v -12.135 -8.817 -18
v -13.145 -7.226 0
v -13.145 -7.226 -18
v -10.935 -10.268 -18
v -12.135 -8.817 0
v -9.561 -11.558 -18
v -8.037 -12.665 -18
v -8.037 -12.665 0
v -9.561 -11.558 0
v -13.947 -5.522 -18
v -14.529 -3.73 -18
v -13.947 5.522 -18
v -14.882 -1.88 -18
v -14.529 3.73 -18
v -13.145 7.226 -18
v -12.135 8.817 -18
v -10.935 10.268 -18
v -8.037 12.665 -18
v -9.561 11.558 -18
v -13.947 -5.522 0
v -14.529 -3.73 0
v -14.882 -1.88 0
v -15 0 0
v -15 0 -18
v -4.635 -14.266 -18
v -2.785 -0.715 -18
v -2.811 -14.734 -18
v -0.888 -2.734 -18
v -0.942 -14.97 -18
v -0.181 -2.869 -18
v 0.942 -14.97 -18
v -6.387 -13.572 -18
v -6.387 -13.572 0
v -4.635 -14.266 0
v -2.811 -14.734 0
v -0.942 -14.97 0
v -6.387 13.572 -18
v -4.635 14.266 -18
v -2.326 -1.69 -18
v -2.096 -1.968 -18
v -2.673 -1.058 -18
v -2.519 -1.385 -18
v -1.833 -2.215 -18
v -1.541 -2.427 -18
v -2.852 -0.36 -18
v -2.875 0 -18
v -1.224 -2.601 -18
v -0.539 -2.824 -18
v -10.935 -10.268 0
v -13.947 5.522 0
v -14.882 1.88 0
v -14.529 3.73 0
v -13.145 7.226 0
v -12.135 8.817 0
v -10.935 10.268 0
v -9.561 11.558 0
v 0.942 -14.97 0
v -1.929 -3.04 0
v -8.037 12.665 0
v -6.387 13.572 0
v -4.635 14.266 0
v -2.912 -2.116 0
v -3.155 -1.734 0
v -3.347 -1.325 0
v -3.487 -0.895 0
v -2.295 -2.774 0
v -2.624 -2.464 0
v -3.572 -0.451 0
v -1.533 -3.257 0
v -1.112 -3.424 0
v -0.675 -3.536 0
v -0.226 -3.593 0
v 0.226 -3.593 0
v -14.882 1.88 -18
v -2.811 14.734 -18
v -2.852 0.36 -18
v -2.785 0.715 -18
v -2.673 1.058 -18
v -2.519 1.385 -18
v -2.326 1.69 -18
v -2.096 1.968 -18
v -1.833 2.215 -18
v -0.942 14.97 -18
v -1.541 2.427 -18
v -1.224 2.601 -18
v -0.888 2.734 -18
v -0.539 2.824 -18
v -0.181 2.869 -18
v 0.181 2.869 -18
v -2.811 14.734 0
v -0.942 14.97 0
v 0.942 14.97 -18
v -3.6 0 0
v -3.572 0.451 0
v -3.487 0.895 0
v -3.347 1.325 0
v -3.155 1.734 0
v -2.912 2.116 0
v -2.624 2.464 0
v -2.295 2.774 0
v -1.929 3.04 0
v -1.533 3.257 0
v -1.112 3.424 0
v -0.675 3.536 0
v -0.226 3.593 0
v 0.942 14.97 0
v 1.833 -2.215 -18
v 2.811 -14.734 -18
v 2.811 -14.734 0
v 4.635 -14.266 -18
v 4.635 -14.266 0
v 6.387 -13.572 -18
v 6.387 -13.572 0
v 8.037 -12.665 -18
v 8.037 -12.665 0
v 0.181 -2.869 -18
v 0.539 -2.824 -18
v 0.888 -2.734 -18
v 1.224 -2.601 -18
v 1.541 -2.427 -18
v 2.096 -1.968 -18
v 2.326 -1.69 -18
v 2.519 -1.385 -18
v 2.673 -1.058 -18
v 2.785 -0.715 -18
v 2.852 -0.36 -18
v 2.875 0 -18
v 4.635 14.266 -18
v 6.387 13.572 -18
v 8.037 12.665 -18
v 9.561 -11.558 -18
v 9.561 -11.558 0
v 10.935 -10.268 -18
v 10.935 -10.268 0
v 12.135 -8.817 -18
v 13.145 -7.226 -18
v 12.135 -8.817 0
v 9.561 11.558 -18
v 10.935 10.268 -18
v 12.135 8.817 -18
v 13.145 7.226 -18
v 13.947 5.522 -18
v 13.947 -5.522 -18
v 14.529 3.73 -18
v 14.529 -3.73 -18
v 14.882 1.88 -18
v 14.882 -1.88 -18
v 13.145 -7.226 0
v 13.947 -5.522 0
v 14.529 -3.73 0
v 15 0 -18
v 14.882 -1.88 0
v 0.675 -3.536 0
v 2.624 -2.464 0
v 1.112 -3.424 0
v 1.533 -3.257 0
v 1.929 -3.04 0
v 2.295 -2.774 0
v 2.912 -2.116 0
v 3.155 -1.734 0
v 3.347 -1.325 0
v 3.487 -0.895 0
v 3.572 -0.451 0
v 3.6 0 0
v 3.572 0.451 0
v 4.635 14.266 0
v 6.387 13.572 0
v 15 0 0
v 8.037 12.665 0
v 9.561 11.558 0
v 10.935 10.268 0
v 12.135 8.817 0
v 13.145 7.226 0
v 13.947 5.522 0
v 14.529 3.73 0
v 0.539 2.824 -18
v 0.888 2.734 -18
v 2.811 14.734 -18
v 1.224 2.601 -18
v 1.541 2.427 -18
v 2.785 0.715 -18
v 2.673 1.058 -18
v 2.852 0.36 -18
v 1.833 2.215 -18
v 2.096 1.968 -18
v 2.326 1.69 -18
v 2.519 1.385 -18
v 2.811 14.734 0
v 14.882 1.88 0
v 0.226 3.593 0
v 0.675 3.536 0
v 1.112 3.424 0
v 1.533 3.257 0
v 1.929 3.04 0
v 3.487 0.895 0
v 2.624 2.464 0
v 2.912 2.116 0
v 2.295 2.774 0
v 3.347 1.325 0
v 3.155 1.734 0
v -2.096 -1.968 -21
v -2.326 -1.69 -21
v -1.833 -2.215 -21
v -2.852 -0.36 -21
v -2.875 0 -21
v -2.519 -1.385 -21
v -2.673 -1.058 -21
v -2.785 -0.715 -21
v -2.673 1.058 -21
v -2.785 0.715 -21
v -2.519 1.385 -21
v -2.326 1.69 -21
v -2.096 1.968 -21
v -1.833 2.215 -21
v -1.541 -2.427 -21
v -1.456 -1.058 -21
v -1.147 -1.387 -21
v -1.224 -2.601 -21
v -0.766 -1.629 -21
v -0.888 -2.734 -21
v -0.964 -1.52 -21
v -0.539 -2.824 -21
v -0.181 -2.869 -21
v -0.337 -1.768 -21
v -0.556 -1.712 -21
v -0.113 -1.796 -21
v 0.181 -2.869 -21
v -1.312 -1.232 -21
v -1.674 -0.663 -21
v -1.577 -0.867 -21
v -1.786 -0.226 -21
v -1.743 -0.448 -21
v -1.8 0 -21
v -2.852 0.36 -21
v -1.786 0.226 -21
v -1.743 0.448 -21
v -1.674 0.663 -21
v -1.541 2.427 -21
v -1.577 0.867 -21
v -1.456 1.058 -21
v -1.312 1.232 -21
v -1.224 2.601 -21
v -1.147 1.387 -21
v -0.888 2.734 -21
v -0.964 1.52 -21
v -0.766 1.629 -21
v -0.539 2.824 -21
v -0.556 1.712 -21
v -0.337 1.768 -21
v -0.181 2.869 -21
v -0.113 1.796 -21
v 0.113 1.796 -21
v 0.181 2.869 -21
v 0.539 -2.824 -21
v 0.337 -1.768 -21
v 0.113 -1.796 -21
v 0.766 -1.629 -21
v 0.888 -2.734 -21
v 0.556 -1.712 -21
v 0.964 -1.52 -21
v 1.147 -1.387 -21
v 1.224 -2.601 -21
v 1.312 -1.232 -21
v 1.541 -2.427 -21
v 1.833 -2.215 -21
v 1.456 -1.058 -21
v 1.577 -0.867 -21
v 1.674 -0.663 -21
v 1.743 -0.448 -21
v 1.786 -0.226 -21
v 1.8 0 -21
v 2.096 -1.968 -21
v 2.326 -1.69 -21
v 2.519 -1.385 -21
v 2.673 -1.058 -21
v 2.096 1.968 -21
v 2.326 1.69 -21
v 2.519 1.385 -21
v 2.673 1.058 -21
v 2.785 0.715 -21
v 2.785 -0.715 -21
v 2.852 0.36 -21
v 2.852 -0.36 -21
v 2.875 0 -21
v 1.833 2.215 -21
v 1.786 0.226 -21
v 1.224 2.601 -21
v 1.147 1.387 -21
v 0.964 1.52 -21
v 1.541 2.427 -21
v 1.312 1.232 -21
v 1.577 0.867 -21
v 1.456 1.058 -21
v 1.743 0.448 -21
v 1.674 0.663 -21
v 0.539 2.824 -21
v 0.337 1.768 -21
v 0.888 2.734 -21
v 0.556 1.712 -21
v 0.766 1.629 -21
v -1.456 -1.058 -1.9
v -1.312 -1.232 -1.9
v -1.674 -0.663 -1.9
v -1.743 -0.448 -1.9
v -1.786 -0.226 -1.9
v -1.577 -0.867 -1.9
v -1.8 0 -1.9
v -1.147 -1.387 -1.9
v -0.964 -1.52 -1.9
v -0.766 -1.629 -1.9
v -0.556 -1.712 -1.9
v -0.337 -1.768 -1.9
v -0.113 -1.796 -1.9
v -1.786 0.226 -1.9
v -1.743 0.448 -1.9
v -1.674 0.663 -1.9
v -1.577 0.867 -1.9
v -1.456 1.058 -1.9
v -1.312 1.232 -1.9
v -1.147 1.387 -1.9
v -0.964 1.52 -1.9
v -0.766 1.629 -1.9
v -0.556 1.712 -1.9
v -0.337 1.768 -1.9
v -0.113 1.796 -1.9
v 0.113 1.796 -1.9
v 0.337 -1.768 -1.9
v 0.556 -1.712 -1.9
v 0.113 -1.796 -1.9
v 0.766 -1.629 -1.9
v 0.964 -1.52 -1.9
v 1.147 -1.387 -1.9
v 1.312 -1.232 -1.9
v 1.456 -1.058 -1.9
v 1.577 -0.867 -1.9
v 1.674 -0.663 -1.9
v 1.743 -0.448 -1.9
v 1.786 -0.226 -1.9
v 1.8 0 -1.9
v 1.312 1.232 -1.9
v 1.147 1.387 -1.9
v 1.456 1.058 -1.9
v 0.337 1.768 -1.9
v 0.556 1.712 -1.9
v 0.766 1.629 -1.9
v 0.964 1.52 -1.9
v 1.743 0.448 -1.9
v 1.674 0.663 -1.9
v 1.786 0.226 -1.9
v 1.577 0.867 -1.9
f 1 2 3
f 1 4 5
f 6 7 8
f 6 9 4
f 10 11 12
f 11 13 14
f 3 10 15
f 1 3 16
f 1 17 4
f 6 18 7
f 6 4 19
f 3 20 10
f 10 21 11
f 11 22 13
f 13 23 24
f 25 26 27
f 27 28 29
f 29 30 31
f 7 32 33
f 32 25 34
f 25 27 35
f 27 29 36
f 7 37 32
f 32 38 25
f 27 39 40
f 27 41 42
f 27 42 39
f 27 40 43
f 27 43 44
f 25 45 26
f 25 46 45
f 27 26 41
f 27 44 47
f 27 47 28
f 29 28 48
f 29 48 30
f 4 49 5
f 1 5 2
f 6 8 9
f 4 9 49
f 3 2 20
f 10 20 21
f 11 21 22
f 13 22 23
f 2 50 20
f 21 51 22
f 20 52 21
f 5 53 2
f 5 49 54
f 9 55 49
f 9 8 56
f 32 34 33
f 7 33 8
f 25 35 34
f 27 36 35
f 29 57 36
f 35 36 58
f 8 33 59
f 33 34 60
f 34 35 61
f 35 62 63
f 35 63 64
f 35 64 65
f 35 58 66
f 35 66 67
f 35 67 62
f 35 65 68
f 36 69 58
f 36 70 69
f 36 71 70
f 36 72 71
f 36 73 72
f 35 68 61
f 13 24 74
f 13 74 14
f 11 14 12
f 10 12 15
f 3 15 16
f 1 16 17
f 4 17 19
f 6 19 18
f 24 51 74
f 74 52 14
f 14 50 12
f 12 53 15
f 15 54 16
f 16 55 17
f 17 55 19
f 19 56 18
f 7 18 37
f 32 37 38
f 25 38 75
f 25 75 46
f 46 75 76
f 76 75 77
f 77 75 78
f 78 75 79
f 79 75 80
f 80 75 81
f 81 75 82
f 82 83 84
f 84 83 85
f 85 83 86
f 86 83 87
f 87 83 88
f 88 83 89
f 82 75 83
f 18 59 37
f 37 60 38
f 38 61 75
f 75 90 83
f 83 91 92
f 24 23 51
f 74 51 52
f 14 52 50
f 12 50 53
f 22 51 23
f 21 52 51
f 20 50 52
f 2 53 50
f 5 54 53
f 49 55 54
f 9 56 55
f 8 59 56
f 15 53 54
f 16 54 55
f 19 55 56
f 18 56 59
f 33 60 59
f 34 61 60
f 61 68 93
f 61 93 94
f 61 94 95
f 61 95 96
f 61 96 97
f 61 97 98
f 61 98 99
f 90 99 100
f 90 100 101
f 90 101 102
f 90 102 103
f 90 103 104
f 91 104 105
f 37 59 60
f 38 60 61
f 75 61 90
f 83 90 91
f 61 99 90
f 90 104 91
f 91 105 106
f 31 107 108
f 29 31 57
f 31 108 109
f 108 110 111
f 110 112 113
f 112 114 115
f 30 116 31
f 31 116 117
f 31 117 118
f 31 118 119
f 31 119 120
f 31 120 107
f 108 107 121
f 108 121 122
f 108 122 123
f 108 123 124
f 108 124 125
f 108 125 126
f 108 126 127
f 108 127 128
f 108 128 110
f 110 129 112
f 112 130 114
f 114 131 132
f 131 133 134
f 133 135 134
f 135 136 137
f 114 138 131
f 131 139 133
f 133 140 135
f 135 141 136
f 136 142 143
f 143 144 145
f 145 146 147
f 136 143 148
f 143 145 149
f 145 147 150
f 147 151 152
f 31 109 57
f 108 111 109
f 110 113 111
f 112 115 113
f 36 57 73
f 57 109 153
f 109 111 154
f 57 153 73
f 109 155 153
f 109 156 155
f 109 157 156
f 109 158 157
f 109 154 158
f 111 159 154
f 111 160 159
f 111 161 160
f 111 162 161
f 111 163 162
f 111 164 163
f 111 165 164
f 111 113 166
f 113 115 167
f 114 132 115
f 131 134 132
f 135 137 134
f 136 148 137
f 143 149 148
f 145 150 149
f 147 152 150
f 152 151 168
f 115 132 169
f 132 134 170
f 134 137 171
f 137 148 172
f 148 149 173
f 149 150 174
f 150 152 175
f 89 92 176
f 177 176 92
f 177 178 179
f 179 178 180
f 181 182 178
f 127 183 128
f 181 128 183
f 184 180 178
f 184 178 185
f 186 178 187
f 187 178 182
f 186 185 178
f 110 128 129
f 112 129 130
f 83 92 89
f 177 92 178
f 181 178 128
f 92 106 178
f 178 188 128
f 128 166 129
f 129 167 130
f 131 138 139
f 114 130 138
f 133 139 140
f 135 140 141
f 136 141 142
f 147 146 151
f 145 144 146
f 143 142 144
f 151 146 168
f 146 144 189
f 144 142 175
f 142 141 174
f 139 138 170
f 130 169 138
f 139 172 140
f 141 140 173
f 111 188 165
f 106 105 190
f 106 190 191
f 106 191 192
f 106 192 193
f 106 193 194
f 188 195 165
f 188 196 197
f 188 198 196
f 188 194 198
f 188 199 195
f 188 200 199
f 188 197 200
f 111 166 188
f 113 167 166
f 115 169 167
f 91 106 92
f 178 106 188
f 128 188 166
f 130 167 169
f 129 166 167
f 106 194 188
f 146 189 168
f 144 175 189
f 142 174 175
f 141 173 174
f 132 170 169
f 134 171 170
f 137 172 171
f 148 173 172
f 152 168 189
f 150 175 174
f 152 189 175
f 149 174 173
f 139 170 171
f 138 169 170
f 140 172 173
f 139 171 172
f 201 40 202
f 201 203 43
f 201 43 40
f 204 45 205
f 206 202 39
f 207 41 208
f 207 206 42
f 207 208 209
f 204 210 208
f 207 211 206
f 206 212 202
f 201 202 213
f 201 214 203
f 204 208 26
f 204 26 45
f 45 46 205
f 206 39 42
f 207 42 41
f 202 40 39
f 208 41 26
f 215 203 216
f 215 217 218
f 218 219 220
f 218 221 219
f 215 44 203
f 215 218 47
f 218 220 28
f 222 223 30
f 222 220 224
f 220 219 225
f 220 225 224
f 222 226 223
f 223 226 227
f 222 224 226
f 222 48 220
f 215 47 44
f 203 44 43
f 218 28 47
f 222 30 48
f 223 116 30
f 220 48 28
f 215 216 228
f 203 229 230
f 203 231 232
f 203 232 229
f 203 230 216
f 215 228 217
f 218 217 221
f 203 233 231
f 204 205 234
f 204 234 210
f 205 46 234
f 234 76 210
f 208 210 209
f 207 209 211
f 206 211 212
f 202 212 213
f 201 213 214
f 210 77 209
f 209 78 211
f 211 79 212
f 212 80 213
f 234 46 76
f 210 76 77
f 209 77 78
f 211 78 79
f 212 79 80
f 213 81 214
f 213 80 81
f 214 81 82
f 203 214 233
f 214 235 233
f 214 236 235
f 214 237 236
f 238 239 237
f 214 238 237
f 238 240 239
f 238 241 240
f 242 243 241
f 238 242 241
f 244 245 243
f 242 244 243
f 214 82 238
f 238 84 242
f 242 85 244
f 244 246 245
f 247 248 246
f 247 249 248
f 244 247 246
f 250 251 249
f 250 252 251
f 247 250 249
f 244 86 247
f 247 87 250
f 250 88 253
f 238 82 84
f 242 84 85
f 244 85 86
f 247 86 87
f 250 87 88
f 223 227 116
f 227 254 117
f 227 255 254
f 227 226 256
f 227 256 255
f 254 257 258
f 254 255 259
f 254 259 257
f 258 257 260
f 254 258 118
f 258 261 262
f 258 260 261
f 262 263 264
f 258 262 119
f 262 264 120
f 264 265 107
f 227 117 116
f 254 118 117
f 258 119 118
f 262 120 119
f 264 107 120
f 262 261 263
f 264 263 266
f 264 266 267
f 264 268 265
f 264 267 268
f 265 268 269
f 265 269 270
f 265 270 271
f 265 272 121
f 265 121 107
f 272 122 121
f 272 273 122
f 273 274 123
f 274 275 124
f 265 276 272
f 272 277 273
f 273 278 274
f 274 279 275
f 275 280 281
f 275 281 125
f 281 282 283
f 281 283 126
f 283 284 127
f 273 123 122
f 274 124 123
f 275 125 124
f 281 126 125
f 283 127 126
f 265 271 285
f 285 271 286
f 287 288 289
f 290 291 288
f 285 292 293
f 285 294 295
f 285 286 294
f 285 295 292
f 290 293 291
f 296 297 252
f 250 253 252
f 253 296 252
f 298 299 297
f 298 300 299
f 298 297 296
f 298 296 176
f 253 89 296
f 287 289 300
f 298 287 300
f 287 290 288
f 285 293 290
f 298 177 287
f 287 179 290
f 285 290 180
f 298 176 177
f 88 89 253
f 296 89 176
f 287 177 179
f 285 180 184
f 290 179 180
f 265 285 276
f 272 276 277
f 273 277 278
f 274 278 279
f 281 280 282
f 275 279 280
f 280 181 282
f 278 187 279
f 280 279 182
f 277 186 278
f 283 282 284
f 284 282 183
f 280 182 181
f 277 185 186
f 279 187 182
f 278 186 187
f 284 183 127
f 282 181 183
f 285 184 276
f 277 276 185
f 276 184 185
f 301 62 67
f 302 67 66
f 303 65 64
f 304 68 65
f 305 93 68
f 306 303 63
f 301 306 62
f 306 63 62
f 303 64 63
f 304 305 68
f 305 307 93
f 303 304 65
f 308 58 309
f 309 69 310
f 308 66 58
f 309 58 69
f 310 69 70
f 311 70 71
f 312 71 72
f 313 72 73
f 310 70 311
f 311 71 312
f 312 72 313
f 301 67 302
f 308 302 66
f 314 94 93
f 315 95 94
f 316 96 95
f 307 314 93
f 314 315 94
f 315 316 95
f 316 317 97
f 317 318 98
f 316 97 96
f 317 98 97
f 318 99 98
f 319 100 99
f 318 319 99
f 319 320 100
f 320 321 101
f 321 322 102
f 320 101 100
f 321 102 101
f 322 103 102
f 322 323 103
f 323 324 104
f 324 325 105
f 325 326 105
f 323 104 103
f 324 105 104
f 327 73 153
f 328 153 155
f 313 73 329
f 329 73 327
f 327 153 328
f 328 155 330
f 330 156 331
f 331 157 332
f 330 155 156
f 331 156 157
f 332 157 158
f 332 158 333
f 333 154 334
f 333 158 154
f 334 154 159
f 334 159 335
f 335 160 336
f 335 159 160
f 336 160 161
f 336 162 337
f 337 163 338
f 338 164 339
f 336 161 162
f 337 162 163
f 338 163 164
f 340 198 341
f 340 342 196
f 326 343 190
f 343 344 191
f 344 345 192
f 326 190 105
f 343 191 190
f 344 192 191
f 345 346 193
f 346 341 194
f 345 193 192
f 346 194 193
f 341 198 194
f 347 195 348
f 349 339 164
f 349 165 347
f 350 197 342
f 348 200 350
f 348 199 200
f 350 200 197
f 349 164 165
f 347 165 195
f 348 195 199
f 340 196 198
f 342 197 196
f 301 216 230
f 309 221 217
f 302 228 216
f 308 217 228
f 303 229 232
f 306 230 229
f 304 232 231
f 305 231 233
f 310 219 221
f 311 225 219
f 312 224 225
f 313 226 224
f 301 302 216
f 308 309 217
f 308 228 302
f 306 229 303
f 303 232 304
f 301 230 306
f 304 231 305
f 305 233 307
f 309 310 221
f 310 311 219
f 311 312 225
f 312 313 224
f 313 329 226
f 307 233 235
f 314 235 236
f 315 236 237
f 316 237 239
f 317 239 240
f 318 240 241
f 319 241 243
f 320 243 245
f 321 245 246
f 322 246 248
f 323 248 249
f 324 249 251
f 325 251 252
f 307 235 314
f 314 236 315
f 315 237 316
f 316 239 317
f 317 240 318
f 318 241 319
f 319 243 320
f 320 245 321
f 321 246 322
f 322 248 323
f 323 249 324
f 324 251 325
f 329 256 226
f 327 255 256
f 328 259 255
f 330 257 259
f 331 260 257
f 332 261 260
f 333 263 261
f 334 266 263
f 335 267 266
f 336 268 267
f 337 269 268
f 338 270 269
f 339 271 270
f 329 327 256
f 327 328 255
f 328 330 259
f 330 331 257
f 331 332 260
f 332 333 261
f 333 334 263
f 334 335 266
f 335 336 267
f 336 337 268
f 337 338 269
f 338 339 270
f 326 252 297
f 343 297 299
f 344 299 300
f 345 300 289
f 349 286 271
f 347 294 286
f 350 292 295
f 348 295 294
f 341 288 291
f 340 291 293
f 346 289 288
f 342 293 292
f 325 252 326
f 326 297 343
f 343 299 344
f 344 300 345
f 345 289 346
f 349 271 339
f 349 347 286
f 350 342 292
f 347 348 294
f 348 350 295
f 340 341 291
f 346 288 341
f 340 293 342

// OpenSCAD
$fn = 50;

difference() {
	union() {
		translate(v = [0, 0, -18.0]) {
			cylinder(h = 18, r = 15.0);
		}
		#translate(v = [0, 0, -21.0]) {
			cylinder(h = 21, r = 2.875);
		}
	}
	union() {
		translate(v = [0, 0, 0]) {
			rotate(a = [0, 0, 0]) {
				difference() {
					union() {
						translate(v = [0, 0, -21.0]) {
							cylinder(h = 21, r = 1.5);
						}
						translate(v = [0, 0, -1.9]) {
							cylinder(h = 1.9, r1 = 1.8, r2 = 3.6);
						}
						translate(v = [0, 0, -21.0]) {
							cylinder(h = 21, r = 1.8);
						}
						translate(v = [0, 0, -21.0]) {
							cylinder(h = 21, r = 1.5);
						}
					}
					union();
				}
			}
		}
	}
}
